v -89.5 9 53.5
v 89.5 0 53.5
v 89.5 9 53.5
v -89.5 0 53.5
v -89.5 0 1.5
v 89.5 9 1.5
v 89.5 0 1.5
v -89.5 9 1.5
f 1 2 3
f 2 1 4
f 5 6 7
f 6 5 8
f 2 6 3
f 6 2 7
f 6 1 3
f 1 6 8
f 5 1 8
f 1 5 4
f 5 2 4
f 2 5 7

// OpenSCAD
//Copyright 2022 Gilgamech Technologies
//Title: Enigma front cover
//Made by: Stephen Gillie
//Created on: 3/23/2022
//Updated on: 3/23/2022
//Units: millimeters
//Notes: 

//outerBox
oBLen=230;
oBWid=9;
oBHei=55;
//innerBox
iBins=(159/2);

//bottom
botLen=177;
botWid=221;
hBotLen=botLen/2;
hBotWid=botWid/2;

hOBWid=oBWid/2;
hOther=45/2;

//boxFront();
boxFront(90,hOBWid,0,oBHei/2);

module boxFront(rot=90,x=hBotLen+oBHei-8,y=0,z=-(oBWid*2)){
rotate([0,0,rot]){
translate([x,y,z]){
    cube([oBWid,179,oBHei-3], center=true);
}}}
